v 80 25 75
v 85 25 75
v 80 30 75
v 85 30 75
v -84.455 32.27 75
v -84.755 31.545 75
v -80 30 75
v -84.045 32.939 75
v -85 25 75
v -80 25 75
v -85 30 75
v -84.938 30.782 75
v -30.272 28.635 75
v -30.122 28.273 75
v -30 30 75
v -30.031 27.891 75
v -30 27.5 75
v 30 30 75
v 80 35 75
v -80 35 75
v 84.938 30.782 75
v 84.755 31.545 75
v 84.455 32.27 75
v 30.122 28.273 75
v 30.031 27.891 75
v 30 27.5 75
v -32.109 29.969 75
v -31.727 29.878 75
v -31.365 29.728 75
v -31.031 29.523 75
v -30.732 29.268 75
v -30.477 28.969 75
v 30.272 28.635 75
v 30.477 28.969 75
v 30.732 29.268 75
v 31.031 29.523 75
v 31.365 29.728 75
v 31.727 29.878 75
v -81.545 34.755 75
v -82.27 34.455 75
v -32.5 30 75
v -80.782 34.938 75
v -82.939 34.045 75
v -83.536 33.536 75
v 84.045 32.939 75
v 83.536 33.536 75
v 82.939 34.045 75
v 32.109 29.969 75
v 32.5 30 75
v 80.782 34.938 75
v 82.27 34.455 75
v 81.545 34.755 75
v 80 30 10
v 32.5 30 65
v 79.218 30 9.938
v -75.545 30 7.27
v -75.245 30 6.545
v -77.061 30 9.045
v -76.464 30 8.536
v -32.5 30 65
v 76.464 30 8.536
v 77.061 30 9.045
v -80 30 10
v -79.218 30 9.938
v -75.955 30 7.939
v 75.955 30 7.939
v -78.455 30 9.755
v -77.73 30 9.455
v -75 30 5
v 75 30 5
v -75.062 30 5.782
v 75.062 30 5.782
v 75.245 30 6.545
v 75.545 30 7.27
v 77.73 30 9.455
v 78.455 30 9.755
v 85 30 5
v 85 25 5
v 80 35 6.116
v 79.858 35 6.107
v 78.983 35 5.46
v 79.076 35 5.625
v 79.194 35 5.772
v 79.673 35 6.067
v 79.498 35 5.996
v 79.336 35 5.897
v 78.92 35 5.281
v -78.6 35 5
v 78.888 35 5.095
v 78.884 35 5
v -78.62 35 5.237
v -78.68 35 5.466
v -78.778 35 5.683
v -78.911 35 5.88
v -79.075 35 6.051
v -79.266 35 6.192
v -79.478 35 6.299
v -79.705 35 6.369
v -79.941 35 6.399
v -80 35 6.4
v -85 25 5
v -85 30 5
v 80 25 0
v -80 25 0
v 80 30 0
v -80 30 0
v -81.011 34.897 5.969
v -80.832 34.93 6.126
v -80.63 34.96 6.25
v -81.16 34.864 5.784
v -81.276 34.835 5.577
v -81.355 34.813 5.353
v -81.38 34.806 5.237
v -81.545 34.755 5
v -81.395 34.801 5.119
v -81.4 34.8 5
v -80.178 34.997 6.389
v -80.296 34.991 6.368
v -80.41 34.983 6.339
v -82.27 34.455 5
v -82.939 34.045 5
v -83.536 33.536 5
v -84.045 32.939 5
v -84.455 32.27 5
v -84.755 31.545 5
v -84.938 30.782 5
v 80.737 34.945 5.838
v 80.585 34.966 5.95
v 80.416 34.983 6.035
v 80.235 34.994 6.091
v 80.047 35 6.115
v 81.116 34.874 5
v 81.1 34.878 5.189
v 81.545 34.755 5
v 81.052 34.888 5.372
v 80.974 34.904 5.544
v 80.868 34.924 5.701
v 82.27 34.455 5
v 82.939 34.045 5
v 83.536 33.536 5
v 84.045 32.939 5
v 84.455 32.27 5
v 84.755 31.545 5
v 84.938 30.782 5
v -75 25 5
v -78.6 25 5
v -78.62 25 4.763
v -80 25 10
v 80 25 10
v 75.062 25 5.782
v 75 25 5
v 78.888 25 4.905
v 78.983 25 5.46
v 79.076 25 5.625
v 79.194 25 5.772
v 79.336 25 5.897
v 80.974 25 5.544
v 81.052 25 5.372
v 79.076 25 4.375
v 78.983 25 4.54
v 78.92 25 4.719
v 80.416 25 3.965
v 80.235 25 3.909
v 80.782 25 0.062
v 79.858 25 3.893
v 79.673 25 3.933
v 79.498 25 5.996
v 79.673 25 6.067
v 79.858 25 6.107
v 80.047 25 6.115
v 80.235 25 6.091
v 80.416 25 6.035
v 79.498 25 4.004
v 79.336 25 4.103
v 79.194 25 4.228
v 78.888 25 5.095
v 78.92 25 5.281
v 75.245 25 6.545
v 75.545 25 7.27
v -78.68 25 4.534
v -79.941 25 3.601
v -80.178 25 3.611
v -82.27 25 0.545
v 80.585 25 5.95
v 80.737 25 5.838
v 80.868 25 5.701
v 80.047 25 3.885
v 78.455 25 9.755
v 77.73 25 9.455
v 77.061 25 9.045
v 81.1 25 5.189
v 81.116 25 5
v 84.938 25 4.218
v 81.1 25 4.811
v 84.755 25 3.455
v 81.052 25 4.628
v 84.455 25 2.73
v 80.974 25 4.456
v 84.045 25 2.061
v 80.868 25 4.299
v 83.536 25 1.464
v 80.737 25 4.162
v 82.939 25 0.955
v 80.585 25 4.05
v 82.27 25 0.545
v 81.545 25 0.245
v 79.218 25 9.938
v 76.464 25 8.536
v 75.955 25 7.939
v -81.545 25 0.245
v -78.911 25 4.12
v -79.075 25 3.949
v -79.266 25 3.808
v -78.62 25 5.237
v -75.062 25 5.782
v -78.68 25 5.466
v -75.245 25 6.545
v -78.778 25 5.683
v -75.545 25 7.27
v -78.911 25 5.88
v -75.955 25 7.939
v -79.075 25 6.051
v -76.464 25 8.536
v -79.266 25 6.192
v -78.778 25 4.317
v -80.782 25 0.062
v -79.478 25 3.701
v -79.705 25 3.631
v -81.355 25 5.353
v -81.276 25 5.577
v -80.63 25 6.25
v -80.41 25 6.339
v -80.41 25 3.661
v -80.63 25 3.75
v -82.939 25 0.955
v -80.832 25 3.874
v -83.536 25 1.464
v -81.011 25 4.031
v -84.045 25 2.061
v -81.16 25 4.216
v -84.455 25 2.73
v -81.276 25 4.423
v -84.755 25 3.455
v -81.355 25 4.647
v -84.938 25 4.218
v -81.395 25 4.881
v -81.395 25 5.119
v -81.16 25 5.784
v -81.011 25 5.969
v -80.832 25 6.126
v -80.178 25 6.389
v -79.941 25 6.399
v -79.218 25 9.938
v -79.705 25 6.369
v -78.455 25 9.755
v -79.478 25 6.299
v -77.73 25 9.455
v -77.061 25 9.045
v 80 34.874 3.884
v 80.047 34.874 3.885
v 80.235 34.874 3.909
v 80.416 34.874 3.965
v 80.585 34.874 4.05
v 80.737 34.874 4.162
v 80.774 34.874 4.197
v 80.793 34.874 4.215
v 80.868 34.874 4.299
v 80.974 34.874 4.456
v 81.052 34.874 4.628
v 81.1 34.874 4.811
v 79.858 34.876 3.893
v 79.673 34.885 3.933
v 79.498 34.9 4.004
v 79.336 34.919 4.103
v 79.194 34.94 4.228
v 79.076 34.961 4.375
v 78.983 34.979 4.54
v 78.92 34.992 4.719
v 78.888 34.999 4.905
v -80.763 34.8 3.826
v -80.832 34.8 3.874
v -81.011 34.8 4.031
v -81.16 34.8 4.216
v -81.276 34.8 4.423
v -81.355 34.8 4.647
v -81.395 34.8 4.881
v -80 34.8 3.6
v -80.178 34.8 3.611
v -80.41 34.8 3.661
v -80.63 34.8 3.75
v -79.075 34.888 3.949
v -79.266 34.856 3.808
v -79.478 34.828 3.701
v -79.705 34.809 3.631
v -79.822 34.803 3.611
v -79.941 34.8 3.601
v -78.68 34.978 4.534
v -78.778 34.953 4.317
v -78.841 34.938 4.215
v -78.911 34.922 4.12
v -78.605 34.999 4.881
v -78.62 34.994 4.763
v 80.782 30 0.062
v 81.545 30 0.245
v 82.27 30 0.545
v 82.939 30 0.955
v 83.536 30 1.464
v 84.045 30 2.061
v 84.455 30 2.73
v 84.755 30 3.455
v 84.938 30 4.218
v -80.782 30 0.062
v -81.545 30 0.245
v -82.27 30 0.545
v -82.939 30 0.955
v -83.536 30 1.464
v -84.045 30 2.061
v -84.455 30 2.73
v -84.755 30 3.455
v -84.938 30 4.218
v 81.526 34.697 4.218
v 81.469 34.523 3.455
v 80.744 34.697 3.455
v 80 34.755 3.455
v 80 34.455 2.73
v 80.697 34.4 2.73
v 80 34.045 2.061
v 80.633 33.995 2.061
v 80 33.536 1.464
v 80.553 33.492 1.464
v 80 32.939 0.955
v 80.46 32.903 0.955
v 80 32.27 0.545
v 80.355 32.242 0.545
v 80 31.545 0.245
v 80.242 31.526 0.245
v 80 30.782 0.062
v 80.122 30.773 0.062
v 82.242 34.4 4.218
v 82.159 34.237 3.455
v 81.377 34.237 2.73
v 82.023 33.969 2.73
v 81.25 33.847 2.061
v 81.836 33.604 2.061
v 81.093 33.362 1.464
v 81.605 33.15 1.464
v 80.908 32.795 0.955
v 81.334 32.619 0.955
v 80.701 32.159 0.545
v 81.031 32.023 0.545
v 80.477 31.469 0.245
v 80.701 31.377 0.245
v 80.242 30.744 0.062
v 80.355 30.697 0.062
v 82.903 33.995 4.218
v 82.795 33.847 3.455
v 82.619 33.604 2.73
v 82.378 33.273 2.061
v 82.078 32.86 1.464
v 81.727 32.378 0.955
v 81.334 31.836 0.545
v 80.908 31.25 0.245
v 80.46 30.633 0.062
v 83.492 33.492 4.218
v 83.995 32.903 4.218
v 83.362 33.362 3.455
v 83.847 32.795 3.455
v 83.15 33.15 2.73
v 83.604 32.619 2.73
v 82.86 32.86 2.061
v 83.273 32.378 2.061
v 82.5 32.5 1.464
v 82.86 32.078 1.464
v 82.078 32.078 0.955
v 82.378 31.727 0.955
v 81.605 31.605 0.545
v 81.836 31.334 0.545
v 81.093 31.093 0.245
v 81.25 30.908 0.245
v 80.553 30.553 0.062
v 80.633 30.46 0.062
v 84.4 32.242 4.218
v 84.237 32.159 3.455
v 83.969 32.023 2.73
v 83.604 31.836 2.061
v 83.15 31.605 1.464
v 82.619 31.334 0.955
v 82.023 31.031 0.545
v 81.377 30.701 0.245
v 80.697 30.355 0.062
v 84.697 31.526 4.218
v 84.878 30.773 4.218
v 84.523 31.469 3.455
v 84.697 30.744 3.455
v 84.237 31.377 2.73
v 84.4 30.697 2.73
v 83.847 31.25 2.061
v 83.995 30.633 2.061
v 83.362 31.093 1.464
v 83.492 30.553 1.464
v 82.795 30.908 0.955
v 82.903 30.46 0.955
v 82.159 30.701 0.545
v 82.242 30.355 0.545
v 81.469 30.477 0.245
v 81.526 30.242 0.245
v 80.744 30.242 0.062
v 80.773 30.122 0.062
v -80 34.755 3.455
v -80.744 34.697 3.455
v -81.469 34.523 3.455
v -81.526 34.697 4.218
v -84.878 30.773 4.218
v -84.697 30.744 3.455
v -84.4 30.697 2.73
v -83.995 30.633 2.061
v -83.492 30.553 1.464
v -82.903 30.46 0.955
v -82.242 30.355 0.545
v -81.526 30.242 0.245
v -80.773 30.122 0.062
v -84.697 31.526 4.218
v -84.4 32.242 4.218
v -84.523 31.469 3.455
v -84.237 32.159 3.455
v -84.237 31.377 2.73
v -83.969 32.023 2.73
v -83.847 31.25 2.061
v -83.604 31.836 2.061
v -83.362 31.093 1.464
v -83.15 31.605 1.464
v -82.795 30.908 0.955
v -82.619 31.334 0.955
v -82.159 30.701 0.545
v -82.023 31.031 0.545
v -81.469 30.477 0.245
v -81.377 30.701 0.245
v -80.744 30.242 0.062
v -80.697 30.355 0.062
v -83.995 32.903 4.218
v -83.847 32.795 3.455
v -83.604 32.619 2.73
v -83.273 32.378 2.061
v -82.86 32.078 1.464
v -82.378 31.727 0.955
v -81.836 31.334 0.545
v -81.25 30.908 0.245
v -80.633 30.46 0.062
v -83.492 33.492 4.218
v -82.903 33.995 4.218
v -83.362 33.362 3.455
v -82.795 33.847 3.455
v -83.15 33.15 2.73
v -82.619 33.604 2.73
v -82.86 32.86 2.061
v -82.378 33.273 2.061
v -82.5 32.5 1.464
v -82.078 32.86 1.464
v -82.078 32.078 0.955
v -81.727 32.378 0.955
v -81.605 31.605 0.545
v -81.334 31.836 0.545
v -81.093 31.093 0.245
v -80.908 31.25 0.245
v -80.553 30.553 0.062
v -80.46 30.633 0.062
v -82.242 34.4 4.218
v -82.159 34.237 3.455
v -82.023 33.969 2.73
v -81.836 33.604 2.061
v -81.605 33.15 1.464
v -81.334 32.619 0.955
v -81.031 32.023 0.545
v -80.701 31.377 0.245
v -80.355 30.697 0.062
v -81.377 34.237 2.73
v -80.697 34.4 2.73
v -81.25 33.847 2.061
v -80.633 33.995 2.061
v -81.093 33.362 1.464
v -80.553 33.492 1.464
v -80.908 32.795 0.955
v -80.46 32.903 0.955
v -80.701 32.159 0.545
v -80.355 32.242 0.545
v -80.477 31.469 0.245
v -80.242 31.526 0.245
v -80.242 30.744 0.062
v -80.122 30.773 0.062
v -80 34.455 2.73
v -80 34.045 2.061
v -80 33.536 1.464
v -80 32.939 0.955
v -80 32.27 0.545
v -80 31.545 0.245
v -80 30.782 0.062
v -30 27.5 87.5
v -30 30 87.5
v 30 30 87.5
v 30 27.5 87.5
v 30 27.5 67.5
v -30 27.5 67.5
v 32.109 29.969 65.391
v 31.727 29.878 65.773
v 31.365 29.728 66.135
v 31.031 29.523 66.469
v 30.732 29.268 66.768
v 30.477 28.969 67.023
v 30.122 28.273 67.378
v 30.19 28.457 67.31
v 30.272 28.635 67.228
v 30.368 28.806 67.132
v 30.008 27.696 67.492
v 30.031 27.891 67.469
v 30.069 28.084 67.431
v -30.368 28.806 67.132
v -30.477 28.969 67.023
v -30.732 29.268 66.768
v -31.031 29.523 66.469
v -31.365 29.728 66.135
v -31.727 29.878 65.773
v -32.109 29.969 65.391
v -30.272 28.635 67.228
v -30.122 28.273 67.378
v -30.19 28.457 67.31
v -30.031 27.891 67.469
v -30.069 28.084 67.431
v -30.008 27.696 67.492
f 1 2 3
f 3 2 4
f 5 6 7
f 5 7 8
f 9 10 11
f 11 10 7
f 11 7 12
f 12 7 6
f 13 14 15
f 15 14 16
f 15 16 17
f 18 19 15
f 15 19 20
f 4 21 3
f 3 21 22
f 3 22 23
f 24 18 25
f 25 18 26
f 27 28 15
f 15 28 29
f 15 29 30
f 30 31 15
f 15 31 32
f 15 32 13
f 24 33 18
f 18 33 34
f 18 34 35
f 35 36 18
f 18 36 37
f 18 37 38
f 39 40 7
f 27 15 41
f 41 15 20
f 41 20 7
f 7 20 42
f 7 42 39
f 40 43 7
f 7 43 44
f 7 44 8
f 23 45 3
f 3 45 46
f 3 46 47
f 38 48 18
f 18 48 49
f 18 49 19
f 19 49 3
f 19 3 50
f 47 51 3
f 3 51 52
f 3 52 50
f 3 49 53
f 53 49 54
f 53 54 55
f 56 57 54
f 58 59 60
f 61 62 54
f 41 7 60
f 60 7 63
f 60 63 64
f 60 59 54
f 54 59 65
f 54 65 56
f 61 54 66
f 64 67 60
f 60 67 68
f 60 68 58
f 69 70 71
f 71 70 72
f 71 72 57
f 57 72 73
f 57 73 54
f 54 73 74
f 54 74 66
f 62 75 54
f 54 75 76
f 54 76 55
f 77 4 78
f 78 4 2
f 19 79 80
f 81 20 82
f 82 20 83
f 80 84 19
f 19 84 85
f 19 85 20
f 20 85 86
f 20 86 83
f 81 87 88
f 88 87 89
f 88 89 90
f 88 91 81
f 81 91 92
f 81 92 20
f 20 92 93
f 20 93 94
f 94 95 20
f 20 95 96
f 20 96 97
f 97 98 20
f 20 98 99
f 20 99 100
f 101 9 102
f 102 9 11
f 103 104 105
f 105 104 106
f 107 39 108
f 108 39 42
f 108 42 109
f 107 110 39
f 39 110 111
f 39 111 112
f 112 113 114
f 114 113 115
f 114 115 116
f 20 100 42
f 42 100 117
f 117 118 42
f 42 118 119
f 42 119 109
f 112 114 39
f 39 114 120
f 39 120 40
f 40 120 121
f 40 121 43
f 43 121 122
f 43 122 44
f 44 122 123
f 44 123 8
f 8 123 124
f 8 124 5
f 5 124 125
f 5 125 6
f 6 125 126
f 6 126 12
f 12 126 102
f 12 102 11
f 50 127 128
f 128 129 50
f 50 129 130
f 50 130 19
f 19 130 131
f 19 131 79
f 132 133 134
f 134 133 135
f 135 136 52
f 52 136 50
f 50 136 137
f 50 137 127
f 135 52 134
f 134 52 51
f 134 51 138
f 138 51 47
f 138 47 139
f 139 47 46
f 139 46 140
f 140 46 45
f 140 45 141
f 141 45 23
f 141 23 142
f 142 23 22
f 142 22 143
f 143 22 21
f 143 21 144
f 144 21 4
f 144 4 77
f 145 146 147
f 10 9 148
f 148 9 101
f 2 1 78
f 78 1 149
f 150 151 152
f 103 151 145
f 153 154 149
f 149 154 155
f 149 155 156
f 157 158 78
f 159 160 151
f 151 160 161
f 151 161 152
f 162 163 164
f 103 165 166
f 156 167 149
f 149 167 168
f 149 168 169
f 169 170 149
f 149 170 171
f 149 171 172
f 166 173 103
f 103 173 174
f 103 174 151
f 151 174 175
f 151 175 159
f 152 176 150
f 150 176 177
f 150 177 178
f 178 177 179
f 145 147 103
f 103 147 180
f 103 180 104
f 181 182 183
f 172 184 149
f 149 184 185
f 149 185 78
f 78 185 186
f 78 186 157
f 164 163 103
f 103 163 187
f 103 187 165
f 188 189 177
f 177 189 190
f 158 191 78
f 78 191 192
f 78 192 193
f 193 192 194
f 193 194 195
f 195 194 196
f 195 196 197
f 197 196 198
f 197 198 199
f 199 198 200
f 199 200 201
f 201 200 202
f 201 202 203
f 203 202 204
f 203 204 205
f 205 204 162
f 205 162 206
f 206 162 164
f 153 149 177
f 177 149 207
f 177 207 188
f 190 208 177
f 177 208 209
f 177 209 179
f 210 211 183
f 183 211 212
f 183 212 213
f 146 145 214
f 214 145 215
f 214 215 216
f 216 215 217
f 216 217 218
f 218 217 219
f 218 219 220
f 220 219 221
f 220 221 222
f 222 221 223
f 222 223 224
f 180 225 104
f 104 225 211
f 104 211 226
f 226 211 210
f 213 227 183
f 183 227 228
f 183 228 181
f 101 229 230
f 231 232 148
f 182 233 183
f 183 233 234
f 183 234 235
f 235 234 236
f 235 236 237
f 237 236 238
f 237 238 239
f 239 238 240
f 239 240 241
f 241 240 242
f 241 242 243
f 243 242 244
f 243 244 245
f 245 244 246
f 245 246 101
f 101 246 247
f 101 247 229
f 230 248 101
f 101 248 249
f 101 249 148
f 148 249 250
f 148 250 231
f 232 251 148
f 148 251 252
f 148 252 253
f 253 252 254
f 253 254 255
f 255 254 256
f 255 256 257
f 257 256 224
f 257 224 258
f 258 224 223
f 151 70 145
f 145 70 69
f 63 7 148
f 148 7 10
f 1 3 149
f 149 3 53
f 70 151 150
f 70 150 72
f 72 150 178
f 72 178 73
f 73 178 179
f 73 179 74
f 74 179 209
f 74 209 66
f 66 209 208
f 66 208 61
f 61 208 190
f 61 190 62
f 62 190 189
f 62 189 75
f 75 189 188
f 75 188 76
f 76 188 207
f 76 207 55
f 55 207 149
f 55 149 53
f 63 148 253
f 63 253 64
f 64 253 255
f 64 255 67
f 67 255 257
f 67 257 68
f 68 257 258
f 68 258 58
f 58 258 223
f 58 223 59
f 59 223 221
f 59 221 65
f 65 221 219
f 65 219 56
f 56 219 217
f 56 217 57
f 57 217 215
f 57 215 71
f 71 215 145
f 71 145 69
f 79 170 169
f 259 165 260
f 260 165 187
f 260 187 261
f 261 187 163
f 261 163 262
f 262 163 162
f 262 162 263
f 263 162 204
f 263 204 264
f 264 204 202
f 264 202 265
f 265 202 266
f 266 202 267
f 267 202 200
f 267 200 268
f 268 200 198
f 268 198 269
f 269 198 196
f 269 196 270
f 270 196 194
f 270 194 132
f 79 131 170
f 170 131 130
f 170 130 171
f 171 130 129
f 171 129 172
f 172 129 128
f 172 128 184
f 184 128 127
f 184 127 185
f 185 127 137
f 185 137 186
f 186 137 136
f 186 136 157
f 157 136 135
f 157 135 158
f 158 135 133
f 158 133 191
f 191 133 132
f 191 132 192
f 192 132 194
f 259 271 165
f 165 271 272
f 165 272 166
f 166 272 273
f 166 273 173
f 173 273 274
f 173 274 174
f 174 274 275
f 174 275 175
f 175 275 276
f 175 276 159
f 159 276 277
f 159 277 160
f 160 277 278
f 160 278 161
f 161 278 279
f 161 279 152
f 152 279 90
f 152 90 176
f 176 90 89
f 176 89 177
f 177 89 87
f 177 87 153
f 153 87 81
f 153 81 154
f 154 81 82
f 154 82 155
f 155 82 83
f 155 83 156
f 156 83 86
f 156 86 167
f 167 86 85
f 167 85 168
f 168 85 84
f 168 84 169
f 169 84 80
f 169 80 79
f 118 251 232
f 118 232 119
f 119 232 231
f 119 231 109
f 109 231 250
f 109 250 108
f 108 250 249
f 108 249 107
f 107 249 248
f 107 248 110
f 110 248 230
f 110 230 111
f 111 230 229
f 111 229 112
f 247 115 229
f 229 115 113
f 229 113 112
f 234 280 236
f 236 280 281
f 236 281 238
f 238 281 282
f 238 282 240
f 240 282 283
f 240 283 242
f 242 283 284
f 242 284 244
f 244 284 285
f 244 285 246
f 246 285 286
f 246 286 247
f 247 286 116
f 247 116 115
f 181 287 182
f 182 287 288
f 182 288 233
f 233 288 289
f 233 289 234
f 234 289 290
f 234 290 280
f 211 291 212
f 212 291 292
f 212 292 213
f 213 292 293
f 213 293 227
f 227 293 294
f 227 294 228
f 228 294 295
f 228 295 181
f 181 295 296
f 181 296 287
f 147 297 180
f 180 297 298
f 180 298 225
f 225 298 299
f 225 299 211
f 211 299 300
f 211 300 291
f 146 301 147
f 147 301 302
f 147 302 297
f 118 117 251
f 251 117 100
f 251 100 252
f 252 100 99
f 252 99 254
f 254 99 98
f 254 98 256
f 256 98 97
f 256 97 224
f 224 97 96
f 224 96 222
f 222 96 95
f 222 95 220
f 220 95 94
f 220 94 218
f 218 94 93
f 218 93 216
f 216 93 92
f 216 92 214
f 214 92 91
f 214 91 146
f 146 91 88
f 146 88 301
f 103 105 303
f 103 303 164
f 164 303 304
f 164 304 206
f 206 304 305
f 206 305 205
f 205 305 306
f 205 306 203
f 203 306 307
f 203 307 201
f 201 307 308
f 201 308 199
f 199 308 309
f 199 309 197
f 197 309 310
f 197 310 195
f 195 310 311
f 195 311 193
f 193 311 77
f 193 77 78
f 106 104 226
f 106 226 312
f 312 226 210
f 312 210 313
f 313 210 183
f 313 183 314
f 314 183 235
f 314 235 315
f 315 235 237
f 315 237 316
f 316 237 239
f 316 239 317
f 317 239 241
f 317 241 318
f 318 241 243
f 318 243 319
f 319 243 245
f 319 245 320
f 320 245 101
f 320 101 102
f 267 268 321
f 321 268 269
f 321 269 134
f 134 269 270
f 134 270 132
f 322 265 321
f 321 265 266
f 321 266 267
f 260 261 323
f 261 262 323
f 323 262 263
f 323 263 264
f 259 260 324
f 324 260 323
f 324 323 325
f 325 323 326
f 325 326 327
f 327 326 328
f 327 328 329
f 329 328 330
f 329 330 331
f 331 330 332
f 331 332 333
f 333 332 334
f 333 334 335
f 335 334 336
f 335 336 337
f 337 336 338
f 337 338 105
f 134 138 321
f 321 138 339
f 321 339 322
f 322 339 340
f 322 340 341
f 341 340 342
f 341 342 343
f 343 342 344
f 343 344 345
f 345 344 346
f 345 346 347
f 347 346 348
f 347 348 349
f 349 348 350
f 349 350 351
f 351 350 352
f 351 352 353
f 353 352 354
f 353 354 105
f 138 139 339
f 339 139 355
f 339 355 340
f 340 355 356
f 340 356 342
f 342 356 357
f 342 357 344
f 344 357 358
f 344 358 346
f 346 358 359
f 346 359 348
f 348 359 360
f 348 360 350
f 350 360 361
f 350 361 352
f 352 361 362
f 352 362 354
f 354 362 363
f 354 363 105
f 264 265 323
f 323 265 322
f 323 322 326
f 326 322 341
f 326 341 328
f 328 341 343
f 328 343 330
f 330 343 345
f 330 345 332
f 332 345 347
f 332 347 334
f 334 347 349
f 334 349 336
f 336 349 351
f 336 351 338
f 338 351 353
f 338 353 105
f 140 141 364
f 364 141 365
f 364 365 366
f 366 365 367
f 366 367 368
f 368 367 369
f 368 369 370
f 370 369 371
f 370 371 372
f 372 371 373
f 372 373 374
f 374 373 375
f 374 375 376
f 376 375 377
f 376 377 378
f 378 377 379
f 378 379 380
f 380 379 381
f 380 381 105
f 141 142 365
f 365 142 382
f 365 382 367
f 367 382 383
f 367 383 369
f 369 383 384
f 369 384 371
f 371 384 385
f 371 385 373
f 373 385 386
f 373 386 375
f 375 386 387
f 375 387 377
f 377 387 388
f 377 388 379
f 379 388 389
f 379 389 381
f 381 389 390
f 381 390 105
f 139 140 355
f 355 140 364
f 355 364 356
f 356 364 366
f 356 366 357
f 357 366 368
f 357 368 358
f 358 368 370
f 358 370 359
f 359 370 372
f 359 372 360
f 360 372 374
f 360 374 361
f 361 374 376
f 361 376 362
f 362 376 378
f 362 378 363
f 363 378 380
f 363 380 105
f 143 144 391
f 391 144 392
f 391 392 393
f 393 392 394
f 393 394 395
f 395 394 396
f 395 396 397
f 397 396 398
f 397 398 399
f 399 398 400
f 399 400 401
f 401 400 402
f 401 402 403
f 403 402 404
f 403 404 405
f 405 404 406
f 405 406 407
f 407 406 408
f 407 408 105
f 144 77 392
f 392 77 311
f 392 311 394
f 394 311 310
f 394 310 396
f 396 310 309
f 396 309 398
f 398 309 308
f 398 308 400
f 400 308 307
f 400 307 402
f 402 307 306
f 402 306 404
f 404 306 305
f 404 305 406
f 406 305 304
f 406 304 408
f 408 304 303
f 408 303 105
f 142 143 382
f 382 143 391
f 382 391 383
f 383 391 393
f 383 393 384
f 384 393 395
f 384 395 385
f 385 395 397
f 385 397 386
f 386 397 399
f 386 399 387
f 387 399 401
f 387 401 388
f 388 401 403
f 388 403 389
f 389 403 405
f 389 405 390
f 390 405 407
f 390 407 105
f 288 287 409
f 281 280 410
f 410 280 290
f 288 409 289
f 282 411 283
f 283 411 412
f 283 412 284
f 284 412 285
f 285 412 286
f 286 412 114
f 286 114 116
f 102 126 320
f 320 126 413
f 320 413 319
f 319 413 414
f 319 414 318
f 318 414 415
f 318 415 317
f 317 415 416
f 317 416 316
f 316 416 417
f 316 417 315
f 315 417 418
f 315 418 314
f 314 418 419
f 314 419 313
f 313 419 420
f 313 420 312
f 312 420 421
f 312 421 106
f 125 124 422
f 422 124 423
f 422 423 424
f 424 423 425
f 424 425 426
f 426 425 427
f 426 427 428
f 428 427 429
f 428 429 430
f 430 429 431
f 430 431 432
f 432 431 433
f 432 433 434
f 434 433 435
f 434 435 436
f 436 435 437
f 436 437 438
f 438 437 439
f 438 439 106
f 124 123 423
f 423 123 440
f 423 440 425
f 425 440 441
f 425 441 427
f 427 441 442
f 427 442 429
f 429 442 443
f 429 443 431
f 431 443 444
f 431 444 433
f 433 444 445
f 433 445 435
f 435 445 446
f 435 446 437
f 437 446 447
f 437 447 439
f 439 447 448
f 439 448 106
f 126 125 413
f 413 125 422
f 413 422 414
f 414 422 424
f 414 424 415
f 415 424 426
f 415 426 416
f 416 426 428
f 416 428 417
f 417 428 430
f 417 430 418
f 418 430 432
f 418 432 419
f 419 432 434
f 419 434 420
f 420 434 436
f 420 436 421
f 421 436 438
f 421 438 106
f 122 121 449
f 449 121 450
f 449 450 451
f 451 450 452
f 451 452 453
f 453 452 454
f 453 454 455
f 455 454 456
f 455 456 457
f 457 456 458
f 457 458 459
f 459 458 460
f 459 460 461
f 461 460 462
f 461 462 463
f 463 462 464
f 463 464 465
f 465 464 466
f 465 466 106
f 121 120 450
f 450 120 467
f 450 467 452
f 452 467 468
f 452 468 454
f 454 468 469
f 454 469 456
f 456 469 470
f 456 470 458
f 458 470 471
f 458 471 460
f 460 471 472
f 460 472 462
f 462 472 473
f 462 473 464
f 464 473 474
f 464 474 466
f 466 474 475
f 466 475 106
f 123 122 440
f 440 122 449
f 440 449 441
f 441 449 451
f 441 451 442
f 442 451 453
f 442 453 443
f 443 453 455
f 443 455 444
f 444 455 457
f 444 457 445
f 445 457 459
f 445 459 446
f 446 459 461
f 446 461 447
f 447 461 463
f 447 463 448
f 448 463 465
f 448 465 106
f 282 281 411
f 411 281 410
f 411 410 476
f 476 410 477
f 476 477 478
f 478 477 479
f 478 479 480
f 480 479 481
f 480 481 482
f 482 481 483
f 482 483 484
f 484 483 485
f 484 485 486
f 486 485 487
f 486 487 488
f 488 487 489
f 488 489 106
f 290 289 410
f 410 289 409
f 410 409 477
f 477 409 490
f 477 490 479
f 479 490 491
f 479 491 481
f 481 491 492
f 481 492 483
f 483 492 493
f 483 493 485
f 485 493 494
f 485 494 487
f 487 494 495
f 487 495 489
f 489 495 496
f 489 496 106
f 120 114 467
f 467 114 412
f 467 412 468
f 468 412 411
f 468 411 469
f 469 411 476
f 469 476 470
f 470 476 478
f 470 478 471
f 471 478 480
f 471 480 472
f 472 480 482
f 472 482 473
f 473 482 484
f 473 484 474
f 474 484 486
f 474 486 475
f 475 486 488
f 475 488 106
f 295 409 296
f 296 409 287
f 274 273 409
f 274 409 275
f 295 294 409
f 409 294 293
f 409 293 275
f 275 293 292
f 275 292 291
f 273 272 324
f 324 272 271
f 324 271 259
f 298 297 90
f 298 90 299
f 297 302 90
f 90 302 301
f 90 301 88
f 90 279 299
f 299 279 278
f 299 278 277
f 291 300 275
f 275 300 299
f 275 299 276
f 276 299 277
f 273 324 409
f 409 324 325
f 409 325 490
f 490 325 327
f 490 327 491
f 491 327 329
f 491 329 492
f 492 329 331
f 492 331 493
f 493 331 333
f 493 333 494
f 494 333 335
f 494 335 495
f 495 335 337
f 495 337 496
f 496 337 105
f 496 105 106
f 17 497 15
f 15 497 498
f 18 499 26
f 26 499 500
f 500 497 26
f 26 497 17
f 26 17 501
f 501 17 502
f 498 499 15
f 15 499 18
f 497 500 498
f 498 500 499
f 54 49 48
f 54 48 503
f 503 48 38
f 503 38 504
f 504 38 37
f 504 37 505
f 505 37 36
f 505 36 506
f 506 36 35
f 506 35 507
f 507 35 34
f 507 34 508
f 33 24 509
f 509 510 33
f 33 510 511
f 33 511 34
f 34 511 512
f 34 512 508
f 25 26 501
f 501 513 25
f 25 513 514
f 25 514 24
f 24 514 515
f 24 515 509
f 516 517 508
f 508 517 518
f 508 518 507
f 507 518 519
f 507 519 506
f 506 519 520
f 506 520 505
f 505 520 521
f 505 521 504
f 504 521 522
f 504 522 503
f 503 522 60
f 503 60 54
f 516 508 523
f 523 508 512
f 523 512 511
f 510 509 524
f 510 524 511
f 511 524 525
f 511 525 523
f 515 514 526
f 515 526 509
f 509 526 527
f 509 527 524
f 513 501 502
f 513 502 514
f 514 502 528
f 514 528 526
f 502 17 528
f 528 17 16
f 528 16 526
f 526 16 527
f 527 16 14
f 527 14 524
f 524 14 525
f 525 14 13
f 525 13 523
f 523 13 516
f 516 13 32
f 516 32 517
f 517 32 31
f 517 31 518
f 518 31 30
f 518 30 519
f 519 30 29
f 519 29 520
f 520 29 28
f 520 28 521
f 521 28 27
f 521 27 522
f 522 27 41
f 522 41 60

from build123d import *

# Parameters (mm, degrees)
SKETCH1_W           = 170
SKETCH1_H           = 70
BOSS_EXTRUDE1_DEPTH = 90
FILLET2_R           = 5
SKETCH5_R           = 1.4
CUT_EXTRUDE2_DEPTH  = 12
CUT_EXTRUDE3_DEPTH  = 170
SKETCH7_W           = 158.942349138
SKETCH7_H           = 5
CUT_EXTRUDE4_DEPTH  = 70
SKETCH9_W           = 1.057650862
SKETCH9_H           = 5
SKETCH9_W_2         = 2.044997
CUT_EXTRUDE5_DEPTH  = 70
SKETCH12_W          = 5
SKETCH12_H          = 5
BOSS_EXTRUDE2_DEPTH = 75
SKETCH13_R          = 5
BOSS_EXTRUDE4_DEPTH = 5
SKETCH14_R          = 1.4
SKETCH14_R_2        = 1.115846917
CUT_EXTRUDE6_DEPTH  = 10
FILLET3_R           = 5
BOSS_EXTRUDE5_DEPTH = 2.5
SKETCH16_W          = 60
SKETCH16_H          = 2.5
BOSS_EXTRUDE6_DEPTH = 12.5
FILLET4_R           = 2.5


# Some blends are built 0.0001 mm under size
with BuildPart() as part:
    # Sketch1 → Boss-Extrude1 (new body)
    with BuildSketch(Plane.XY):
        Rectangle(SKETCH1_W, SKETCH1_H)
    extrude(amount=BOSS_EXTRUDE1_DEPTH)

    # Fillet2
    fillet2_edges = [part.edges().sort_by_distance(p)[0] for p in [
        (85, -35, 45),
        (-85, -35, 45),
        (-85, 35, 45),
        (85, 35, 45),
    ]]
    fillet(fillet2_edges, radius=FILLET2_R)

    # Sketch5 → Cut-Extrude2 (cut)
    with BuildSketch(Plane.XY.offset(90)):
        with Locations((-80, 30)):
            Circle(SKETCH5_R)
        with Locations((-80, -30)):
            Circle(SKETCH5_R)
        with Locations((80, 30)):
            Circle(SKETCH5_R)
        with Locations((80, -30)):
            Circle(SKETCH5_R)
    extrude(amount=-CUT_EXTRUDE2_DEPTH, mode=Mode.SUBTRACT)

    # Sketch6 → Cut-Extrude3 (cut)
    with BuildSketch(Plane.ZY.offset(85)):
        Polygon((0, 25), (0, -35), (90, -35), (90, 35), (75, 35), (75, 25), align=None)
    extrude(amount=-CUT_EXTRUDE3_DEPTH, mode=Mode.SUBTRACT)

    # Sketch7 → Cut-Extrude4 (cut)
    with BuildSketch(Plane.XY.offset(75)):
        with Locations((0.528825431, 27.5)):
            Rectangle(SKETCH7_W, SKETCH7_H)
    extrude(amount=-CUT_EXTRUDE4_DEPTH, mode=Mode.SUBTRACT)

    # Sketch9 → Cut-Extrude5 (cut)
    with BuildSketch(Plane.XY.offset(75)):
        with Locations((-79.471174569, 27.5)):
            Rectangle(SKETCH9_W, SKETCH9_H)
        with Locations((81.0224985, 27.5)):
            Rectangle(SKETCH9_W_2, SKETCH9_H)
    extrude(amount=-CUT_EXTRUDE5_DEPTH, mode=Mode.SUBTRACT)

    # Sketch12 → Boss-Extrude2 (add)
    with BuildSketch(Plane.XY.offset(75)):
        with Locations((82.5, 27.5)):
            Rectangle(SKETCH12_W, SKETCH12_H)
    extrude(amount=-BOSS_EXTRUDE2_DEPTH)

    # Sketch13 → Boss-Extrude4 (add)
    with BuildSketch(Plane(origin=(0, 25, 0), x_dir=(-1, 0, 0), z_dir=(0, -1, 0))):
        with Locations((-80, -5)):
            Circle(SKETCH13_R)
        with Locations((80, -5)):
            Circle(SKETCH13_R)
    extrude(amount=-BOSS_EXTRUDE4_DEPTH)

    # Sketch14 → Cut-Extrude6 (cut)
    with BuildSketch(Plane.XZ.offset(-25)):
        with Locations((-80, 5)):
            Circle(SKETCH14_R)
        with Locations((80, 5)):
            Circle(SKETCH14_R_2)
    extrude(amount=-CUT_EXTRUDE6_DEPTH, mode=Mode.SUBTRACT)

    # Fillet3
    # the kernel refuses this fillet: 5 mm, written as the material it takes off along each edge
    with BuildSketch(Plane(origin=(-80, 35, 0), x_dir=(0, 0, 1), z_dir=(1, 0, 0))) as fillet3_piece_1:
        with BuildLine():
            CenterArc((FILLET3_R, FILLET3_R), FILLET3_R, 180, 90)
            Line((0, FILLET3_R), (0, 0))
            Line((0, 0), (FILLET3_R, 0))
        make_face()
    extrude(amount=160, mode=Mode.SUBTRACT)
    with BuildSketch(Plane(origin=(80, 30, 0), x_dir=(0, 1, 0), z_dir=(-1, 0, 0))) as fillet3_piece_2:
        with BuildLine():
            CenterArc((5 - FILLET3_R, -FILLET3_R), FILLET3_R, 0, 90)
            Line((5, -FILLET3_R), (5, 0))
            Line((5, 0), (5 - FILLET3_R, 0))
        make_face()
    revolve(axis=Axis((80, 30, 0), (0, 0, -1)), revolution_arc=90, mode=Mode.SUBTRACT)
    with BuildSketch(Plane(origin=(85, 30, 0), x_dir=(-1, 0, 0), z_dir=(0, -1, 0)), Plane(origin=(-85, 12.5, 0), x_dir=(1, 0, 0), z_dir=(0, 1, 0))) as fillet3_piece_3:
        with BuildLine():
            CenterArc((FILLET3_R, -FILLET3_R), FILLET3_R, 90, 90)
            Line((0, -FILLET3_R), (0, 0))
            Line((0, 0), (FILLET3_R, 0))
        make_face()
    extrude(amount=17.5, mode=Mode.SUBTRACT)
    with BuildSketch(Plane(origin=(-80, 30, 0), x_dir=(0, 1, 0), z_dir=(1, 0, 0))) as fillet3_piece_4:
        with BuildLine():
            CenterArc((5 - FILLET3_R, FILLET3_R), FILLET3_R, 270, 90)
            Line((5, FILLET3_R), (5, 0))
            Line((5, 0), (5 - FILLET3_R, 0))
        make_face()
    revolve(axis=Axis((-80, 30, 0), (0, 0, 1)), revolution_arc=90, mode=Mode.SUBTRACT)

    # Sketch15 → Boss-Extrude5 (add)
    with BuildSketch(Plane.XZ.offset(-30)):
        Polygon((0, 75), (30, 75), (30, 67.5), (-30, 67.5), (-30, 75), align=None)
    extrude(amount=BOSS_EXTRUDE5_DEPTH)

    # Sketch16 → Boss-Extrude6 (add)
    with BuildSketch(Plane.XY.offset(75)):
        with Locations((0, 28.75)):
            Rectangle(SKETCH16_W, SKETCH16_H)
    extrude(amount=BOSS_EXTRUDE6_DEPTH)

    # Fillet4
    fillet4_edges = [part.edges().sort_by_distance(p)[0] for p in [
        (-30, 30, 71.25),
        (0, 30, 67.5),
        (30, 30, 71.25),
    ]]
    fillet(fillet4_edges, radius=FILLET4_R - 0.0001)  # a hair under: the kernel refuses the full size


solid = part.part
